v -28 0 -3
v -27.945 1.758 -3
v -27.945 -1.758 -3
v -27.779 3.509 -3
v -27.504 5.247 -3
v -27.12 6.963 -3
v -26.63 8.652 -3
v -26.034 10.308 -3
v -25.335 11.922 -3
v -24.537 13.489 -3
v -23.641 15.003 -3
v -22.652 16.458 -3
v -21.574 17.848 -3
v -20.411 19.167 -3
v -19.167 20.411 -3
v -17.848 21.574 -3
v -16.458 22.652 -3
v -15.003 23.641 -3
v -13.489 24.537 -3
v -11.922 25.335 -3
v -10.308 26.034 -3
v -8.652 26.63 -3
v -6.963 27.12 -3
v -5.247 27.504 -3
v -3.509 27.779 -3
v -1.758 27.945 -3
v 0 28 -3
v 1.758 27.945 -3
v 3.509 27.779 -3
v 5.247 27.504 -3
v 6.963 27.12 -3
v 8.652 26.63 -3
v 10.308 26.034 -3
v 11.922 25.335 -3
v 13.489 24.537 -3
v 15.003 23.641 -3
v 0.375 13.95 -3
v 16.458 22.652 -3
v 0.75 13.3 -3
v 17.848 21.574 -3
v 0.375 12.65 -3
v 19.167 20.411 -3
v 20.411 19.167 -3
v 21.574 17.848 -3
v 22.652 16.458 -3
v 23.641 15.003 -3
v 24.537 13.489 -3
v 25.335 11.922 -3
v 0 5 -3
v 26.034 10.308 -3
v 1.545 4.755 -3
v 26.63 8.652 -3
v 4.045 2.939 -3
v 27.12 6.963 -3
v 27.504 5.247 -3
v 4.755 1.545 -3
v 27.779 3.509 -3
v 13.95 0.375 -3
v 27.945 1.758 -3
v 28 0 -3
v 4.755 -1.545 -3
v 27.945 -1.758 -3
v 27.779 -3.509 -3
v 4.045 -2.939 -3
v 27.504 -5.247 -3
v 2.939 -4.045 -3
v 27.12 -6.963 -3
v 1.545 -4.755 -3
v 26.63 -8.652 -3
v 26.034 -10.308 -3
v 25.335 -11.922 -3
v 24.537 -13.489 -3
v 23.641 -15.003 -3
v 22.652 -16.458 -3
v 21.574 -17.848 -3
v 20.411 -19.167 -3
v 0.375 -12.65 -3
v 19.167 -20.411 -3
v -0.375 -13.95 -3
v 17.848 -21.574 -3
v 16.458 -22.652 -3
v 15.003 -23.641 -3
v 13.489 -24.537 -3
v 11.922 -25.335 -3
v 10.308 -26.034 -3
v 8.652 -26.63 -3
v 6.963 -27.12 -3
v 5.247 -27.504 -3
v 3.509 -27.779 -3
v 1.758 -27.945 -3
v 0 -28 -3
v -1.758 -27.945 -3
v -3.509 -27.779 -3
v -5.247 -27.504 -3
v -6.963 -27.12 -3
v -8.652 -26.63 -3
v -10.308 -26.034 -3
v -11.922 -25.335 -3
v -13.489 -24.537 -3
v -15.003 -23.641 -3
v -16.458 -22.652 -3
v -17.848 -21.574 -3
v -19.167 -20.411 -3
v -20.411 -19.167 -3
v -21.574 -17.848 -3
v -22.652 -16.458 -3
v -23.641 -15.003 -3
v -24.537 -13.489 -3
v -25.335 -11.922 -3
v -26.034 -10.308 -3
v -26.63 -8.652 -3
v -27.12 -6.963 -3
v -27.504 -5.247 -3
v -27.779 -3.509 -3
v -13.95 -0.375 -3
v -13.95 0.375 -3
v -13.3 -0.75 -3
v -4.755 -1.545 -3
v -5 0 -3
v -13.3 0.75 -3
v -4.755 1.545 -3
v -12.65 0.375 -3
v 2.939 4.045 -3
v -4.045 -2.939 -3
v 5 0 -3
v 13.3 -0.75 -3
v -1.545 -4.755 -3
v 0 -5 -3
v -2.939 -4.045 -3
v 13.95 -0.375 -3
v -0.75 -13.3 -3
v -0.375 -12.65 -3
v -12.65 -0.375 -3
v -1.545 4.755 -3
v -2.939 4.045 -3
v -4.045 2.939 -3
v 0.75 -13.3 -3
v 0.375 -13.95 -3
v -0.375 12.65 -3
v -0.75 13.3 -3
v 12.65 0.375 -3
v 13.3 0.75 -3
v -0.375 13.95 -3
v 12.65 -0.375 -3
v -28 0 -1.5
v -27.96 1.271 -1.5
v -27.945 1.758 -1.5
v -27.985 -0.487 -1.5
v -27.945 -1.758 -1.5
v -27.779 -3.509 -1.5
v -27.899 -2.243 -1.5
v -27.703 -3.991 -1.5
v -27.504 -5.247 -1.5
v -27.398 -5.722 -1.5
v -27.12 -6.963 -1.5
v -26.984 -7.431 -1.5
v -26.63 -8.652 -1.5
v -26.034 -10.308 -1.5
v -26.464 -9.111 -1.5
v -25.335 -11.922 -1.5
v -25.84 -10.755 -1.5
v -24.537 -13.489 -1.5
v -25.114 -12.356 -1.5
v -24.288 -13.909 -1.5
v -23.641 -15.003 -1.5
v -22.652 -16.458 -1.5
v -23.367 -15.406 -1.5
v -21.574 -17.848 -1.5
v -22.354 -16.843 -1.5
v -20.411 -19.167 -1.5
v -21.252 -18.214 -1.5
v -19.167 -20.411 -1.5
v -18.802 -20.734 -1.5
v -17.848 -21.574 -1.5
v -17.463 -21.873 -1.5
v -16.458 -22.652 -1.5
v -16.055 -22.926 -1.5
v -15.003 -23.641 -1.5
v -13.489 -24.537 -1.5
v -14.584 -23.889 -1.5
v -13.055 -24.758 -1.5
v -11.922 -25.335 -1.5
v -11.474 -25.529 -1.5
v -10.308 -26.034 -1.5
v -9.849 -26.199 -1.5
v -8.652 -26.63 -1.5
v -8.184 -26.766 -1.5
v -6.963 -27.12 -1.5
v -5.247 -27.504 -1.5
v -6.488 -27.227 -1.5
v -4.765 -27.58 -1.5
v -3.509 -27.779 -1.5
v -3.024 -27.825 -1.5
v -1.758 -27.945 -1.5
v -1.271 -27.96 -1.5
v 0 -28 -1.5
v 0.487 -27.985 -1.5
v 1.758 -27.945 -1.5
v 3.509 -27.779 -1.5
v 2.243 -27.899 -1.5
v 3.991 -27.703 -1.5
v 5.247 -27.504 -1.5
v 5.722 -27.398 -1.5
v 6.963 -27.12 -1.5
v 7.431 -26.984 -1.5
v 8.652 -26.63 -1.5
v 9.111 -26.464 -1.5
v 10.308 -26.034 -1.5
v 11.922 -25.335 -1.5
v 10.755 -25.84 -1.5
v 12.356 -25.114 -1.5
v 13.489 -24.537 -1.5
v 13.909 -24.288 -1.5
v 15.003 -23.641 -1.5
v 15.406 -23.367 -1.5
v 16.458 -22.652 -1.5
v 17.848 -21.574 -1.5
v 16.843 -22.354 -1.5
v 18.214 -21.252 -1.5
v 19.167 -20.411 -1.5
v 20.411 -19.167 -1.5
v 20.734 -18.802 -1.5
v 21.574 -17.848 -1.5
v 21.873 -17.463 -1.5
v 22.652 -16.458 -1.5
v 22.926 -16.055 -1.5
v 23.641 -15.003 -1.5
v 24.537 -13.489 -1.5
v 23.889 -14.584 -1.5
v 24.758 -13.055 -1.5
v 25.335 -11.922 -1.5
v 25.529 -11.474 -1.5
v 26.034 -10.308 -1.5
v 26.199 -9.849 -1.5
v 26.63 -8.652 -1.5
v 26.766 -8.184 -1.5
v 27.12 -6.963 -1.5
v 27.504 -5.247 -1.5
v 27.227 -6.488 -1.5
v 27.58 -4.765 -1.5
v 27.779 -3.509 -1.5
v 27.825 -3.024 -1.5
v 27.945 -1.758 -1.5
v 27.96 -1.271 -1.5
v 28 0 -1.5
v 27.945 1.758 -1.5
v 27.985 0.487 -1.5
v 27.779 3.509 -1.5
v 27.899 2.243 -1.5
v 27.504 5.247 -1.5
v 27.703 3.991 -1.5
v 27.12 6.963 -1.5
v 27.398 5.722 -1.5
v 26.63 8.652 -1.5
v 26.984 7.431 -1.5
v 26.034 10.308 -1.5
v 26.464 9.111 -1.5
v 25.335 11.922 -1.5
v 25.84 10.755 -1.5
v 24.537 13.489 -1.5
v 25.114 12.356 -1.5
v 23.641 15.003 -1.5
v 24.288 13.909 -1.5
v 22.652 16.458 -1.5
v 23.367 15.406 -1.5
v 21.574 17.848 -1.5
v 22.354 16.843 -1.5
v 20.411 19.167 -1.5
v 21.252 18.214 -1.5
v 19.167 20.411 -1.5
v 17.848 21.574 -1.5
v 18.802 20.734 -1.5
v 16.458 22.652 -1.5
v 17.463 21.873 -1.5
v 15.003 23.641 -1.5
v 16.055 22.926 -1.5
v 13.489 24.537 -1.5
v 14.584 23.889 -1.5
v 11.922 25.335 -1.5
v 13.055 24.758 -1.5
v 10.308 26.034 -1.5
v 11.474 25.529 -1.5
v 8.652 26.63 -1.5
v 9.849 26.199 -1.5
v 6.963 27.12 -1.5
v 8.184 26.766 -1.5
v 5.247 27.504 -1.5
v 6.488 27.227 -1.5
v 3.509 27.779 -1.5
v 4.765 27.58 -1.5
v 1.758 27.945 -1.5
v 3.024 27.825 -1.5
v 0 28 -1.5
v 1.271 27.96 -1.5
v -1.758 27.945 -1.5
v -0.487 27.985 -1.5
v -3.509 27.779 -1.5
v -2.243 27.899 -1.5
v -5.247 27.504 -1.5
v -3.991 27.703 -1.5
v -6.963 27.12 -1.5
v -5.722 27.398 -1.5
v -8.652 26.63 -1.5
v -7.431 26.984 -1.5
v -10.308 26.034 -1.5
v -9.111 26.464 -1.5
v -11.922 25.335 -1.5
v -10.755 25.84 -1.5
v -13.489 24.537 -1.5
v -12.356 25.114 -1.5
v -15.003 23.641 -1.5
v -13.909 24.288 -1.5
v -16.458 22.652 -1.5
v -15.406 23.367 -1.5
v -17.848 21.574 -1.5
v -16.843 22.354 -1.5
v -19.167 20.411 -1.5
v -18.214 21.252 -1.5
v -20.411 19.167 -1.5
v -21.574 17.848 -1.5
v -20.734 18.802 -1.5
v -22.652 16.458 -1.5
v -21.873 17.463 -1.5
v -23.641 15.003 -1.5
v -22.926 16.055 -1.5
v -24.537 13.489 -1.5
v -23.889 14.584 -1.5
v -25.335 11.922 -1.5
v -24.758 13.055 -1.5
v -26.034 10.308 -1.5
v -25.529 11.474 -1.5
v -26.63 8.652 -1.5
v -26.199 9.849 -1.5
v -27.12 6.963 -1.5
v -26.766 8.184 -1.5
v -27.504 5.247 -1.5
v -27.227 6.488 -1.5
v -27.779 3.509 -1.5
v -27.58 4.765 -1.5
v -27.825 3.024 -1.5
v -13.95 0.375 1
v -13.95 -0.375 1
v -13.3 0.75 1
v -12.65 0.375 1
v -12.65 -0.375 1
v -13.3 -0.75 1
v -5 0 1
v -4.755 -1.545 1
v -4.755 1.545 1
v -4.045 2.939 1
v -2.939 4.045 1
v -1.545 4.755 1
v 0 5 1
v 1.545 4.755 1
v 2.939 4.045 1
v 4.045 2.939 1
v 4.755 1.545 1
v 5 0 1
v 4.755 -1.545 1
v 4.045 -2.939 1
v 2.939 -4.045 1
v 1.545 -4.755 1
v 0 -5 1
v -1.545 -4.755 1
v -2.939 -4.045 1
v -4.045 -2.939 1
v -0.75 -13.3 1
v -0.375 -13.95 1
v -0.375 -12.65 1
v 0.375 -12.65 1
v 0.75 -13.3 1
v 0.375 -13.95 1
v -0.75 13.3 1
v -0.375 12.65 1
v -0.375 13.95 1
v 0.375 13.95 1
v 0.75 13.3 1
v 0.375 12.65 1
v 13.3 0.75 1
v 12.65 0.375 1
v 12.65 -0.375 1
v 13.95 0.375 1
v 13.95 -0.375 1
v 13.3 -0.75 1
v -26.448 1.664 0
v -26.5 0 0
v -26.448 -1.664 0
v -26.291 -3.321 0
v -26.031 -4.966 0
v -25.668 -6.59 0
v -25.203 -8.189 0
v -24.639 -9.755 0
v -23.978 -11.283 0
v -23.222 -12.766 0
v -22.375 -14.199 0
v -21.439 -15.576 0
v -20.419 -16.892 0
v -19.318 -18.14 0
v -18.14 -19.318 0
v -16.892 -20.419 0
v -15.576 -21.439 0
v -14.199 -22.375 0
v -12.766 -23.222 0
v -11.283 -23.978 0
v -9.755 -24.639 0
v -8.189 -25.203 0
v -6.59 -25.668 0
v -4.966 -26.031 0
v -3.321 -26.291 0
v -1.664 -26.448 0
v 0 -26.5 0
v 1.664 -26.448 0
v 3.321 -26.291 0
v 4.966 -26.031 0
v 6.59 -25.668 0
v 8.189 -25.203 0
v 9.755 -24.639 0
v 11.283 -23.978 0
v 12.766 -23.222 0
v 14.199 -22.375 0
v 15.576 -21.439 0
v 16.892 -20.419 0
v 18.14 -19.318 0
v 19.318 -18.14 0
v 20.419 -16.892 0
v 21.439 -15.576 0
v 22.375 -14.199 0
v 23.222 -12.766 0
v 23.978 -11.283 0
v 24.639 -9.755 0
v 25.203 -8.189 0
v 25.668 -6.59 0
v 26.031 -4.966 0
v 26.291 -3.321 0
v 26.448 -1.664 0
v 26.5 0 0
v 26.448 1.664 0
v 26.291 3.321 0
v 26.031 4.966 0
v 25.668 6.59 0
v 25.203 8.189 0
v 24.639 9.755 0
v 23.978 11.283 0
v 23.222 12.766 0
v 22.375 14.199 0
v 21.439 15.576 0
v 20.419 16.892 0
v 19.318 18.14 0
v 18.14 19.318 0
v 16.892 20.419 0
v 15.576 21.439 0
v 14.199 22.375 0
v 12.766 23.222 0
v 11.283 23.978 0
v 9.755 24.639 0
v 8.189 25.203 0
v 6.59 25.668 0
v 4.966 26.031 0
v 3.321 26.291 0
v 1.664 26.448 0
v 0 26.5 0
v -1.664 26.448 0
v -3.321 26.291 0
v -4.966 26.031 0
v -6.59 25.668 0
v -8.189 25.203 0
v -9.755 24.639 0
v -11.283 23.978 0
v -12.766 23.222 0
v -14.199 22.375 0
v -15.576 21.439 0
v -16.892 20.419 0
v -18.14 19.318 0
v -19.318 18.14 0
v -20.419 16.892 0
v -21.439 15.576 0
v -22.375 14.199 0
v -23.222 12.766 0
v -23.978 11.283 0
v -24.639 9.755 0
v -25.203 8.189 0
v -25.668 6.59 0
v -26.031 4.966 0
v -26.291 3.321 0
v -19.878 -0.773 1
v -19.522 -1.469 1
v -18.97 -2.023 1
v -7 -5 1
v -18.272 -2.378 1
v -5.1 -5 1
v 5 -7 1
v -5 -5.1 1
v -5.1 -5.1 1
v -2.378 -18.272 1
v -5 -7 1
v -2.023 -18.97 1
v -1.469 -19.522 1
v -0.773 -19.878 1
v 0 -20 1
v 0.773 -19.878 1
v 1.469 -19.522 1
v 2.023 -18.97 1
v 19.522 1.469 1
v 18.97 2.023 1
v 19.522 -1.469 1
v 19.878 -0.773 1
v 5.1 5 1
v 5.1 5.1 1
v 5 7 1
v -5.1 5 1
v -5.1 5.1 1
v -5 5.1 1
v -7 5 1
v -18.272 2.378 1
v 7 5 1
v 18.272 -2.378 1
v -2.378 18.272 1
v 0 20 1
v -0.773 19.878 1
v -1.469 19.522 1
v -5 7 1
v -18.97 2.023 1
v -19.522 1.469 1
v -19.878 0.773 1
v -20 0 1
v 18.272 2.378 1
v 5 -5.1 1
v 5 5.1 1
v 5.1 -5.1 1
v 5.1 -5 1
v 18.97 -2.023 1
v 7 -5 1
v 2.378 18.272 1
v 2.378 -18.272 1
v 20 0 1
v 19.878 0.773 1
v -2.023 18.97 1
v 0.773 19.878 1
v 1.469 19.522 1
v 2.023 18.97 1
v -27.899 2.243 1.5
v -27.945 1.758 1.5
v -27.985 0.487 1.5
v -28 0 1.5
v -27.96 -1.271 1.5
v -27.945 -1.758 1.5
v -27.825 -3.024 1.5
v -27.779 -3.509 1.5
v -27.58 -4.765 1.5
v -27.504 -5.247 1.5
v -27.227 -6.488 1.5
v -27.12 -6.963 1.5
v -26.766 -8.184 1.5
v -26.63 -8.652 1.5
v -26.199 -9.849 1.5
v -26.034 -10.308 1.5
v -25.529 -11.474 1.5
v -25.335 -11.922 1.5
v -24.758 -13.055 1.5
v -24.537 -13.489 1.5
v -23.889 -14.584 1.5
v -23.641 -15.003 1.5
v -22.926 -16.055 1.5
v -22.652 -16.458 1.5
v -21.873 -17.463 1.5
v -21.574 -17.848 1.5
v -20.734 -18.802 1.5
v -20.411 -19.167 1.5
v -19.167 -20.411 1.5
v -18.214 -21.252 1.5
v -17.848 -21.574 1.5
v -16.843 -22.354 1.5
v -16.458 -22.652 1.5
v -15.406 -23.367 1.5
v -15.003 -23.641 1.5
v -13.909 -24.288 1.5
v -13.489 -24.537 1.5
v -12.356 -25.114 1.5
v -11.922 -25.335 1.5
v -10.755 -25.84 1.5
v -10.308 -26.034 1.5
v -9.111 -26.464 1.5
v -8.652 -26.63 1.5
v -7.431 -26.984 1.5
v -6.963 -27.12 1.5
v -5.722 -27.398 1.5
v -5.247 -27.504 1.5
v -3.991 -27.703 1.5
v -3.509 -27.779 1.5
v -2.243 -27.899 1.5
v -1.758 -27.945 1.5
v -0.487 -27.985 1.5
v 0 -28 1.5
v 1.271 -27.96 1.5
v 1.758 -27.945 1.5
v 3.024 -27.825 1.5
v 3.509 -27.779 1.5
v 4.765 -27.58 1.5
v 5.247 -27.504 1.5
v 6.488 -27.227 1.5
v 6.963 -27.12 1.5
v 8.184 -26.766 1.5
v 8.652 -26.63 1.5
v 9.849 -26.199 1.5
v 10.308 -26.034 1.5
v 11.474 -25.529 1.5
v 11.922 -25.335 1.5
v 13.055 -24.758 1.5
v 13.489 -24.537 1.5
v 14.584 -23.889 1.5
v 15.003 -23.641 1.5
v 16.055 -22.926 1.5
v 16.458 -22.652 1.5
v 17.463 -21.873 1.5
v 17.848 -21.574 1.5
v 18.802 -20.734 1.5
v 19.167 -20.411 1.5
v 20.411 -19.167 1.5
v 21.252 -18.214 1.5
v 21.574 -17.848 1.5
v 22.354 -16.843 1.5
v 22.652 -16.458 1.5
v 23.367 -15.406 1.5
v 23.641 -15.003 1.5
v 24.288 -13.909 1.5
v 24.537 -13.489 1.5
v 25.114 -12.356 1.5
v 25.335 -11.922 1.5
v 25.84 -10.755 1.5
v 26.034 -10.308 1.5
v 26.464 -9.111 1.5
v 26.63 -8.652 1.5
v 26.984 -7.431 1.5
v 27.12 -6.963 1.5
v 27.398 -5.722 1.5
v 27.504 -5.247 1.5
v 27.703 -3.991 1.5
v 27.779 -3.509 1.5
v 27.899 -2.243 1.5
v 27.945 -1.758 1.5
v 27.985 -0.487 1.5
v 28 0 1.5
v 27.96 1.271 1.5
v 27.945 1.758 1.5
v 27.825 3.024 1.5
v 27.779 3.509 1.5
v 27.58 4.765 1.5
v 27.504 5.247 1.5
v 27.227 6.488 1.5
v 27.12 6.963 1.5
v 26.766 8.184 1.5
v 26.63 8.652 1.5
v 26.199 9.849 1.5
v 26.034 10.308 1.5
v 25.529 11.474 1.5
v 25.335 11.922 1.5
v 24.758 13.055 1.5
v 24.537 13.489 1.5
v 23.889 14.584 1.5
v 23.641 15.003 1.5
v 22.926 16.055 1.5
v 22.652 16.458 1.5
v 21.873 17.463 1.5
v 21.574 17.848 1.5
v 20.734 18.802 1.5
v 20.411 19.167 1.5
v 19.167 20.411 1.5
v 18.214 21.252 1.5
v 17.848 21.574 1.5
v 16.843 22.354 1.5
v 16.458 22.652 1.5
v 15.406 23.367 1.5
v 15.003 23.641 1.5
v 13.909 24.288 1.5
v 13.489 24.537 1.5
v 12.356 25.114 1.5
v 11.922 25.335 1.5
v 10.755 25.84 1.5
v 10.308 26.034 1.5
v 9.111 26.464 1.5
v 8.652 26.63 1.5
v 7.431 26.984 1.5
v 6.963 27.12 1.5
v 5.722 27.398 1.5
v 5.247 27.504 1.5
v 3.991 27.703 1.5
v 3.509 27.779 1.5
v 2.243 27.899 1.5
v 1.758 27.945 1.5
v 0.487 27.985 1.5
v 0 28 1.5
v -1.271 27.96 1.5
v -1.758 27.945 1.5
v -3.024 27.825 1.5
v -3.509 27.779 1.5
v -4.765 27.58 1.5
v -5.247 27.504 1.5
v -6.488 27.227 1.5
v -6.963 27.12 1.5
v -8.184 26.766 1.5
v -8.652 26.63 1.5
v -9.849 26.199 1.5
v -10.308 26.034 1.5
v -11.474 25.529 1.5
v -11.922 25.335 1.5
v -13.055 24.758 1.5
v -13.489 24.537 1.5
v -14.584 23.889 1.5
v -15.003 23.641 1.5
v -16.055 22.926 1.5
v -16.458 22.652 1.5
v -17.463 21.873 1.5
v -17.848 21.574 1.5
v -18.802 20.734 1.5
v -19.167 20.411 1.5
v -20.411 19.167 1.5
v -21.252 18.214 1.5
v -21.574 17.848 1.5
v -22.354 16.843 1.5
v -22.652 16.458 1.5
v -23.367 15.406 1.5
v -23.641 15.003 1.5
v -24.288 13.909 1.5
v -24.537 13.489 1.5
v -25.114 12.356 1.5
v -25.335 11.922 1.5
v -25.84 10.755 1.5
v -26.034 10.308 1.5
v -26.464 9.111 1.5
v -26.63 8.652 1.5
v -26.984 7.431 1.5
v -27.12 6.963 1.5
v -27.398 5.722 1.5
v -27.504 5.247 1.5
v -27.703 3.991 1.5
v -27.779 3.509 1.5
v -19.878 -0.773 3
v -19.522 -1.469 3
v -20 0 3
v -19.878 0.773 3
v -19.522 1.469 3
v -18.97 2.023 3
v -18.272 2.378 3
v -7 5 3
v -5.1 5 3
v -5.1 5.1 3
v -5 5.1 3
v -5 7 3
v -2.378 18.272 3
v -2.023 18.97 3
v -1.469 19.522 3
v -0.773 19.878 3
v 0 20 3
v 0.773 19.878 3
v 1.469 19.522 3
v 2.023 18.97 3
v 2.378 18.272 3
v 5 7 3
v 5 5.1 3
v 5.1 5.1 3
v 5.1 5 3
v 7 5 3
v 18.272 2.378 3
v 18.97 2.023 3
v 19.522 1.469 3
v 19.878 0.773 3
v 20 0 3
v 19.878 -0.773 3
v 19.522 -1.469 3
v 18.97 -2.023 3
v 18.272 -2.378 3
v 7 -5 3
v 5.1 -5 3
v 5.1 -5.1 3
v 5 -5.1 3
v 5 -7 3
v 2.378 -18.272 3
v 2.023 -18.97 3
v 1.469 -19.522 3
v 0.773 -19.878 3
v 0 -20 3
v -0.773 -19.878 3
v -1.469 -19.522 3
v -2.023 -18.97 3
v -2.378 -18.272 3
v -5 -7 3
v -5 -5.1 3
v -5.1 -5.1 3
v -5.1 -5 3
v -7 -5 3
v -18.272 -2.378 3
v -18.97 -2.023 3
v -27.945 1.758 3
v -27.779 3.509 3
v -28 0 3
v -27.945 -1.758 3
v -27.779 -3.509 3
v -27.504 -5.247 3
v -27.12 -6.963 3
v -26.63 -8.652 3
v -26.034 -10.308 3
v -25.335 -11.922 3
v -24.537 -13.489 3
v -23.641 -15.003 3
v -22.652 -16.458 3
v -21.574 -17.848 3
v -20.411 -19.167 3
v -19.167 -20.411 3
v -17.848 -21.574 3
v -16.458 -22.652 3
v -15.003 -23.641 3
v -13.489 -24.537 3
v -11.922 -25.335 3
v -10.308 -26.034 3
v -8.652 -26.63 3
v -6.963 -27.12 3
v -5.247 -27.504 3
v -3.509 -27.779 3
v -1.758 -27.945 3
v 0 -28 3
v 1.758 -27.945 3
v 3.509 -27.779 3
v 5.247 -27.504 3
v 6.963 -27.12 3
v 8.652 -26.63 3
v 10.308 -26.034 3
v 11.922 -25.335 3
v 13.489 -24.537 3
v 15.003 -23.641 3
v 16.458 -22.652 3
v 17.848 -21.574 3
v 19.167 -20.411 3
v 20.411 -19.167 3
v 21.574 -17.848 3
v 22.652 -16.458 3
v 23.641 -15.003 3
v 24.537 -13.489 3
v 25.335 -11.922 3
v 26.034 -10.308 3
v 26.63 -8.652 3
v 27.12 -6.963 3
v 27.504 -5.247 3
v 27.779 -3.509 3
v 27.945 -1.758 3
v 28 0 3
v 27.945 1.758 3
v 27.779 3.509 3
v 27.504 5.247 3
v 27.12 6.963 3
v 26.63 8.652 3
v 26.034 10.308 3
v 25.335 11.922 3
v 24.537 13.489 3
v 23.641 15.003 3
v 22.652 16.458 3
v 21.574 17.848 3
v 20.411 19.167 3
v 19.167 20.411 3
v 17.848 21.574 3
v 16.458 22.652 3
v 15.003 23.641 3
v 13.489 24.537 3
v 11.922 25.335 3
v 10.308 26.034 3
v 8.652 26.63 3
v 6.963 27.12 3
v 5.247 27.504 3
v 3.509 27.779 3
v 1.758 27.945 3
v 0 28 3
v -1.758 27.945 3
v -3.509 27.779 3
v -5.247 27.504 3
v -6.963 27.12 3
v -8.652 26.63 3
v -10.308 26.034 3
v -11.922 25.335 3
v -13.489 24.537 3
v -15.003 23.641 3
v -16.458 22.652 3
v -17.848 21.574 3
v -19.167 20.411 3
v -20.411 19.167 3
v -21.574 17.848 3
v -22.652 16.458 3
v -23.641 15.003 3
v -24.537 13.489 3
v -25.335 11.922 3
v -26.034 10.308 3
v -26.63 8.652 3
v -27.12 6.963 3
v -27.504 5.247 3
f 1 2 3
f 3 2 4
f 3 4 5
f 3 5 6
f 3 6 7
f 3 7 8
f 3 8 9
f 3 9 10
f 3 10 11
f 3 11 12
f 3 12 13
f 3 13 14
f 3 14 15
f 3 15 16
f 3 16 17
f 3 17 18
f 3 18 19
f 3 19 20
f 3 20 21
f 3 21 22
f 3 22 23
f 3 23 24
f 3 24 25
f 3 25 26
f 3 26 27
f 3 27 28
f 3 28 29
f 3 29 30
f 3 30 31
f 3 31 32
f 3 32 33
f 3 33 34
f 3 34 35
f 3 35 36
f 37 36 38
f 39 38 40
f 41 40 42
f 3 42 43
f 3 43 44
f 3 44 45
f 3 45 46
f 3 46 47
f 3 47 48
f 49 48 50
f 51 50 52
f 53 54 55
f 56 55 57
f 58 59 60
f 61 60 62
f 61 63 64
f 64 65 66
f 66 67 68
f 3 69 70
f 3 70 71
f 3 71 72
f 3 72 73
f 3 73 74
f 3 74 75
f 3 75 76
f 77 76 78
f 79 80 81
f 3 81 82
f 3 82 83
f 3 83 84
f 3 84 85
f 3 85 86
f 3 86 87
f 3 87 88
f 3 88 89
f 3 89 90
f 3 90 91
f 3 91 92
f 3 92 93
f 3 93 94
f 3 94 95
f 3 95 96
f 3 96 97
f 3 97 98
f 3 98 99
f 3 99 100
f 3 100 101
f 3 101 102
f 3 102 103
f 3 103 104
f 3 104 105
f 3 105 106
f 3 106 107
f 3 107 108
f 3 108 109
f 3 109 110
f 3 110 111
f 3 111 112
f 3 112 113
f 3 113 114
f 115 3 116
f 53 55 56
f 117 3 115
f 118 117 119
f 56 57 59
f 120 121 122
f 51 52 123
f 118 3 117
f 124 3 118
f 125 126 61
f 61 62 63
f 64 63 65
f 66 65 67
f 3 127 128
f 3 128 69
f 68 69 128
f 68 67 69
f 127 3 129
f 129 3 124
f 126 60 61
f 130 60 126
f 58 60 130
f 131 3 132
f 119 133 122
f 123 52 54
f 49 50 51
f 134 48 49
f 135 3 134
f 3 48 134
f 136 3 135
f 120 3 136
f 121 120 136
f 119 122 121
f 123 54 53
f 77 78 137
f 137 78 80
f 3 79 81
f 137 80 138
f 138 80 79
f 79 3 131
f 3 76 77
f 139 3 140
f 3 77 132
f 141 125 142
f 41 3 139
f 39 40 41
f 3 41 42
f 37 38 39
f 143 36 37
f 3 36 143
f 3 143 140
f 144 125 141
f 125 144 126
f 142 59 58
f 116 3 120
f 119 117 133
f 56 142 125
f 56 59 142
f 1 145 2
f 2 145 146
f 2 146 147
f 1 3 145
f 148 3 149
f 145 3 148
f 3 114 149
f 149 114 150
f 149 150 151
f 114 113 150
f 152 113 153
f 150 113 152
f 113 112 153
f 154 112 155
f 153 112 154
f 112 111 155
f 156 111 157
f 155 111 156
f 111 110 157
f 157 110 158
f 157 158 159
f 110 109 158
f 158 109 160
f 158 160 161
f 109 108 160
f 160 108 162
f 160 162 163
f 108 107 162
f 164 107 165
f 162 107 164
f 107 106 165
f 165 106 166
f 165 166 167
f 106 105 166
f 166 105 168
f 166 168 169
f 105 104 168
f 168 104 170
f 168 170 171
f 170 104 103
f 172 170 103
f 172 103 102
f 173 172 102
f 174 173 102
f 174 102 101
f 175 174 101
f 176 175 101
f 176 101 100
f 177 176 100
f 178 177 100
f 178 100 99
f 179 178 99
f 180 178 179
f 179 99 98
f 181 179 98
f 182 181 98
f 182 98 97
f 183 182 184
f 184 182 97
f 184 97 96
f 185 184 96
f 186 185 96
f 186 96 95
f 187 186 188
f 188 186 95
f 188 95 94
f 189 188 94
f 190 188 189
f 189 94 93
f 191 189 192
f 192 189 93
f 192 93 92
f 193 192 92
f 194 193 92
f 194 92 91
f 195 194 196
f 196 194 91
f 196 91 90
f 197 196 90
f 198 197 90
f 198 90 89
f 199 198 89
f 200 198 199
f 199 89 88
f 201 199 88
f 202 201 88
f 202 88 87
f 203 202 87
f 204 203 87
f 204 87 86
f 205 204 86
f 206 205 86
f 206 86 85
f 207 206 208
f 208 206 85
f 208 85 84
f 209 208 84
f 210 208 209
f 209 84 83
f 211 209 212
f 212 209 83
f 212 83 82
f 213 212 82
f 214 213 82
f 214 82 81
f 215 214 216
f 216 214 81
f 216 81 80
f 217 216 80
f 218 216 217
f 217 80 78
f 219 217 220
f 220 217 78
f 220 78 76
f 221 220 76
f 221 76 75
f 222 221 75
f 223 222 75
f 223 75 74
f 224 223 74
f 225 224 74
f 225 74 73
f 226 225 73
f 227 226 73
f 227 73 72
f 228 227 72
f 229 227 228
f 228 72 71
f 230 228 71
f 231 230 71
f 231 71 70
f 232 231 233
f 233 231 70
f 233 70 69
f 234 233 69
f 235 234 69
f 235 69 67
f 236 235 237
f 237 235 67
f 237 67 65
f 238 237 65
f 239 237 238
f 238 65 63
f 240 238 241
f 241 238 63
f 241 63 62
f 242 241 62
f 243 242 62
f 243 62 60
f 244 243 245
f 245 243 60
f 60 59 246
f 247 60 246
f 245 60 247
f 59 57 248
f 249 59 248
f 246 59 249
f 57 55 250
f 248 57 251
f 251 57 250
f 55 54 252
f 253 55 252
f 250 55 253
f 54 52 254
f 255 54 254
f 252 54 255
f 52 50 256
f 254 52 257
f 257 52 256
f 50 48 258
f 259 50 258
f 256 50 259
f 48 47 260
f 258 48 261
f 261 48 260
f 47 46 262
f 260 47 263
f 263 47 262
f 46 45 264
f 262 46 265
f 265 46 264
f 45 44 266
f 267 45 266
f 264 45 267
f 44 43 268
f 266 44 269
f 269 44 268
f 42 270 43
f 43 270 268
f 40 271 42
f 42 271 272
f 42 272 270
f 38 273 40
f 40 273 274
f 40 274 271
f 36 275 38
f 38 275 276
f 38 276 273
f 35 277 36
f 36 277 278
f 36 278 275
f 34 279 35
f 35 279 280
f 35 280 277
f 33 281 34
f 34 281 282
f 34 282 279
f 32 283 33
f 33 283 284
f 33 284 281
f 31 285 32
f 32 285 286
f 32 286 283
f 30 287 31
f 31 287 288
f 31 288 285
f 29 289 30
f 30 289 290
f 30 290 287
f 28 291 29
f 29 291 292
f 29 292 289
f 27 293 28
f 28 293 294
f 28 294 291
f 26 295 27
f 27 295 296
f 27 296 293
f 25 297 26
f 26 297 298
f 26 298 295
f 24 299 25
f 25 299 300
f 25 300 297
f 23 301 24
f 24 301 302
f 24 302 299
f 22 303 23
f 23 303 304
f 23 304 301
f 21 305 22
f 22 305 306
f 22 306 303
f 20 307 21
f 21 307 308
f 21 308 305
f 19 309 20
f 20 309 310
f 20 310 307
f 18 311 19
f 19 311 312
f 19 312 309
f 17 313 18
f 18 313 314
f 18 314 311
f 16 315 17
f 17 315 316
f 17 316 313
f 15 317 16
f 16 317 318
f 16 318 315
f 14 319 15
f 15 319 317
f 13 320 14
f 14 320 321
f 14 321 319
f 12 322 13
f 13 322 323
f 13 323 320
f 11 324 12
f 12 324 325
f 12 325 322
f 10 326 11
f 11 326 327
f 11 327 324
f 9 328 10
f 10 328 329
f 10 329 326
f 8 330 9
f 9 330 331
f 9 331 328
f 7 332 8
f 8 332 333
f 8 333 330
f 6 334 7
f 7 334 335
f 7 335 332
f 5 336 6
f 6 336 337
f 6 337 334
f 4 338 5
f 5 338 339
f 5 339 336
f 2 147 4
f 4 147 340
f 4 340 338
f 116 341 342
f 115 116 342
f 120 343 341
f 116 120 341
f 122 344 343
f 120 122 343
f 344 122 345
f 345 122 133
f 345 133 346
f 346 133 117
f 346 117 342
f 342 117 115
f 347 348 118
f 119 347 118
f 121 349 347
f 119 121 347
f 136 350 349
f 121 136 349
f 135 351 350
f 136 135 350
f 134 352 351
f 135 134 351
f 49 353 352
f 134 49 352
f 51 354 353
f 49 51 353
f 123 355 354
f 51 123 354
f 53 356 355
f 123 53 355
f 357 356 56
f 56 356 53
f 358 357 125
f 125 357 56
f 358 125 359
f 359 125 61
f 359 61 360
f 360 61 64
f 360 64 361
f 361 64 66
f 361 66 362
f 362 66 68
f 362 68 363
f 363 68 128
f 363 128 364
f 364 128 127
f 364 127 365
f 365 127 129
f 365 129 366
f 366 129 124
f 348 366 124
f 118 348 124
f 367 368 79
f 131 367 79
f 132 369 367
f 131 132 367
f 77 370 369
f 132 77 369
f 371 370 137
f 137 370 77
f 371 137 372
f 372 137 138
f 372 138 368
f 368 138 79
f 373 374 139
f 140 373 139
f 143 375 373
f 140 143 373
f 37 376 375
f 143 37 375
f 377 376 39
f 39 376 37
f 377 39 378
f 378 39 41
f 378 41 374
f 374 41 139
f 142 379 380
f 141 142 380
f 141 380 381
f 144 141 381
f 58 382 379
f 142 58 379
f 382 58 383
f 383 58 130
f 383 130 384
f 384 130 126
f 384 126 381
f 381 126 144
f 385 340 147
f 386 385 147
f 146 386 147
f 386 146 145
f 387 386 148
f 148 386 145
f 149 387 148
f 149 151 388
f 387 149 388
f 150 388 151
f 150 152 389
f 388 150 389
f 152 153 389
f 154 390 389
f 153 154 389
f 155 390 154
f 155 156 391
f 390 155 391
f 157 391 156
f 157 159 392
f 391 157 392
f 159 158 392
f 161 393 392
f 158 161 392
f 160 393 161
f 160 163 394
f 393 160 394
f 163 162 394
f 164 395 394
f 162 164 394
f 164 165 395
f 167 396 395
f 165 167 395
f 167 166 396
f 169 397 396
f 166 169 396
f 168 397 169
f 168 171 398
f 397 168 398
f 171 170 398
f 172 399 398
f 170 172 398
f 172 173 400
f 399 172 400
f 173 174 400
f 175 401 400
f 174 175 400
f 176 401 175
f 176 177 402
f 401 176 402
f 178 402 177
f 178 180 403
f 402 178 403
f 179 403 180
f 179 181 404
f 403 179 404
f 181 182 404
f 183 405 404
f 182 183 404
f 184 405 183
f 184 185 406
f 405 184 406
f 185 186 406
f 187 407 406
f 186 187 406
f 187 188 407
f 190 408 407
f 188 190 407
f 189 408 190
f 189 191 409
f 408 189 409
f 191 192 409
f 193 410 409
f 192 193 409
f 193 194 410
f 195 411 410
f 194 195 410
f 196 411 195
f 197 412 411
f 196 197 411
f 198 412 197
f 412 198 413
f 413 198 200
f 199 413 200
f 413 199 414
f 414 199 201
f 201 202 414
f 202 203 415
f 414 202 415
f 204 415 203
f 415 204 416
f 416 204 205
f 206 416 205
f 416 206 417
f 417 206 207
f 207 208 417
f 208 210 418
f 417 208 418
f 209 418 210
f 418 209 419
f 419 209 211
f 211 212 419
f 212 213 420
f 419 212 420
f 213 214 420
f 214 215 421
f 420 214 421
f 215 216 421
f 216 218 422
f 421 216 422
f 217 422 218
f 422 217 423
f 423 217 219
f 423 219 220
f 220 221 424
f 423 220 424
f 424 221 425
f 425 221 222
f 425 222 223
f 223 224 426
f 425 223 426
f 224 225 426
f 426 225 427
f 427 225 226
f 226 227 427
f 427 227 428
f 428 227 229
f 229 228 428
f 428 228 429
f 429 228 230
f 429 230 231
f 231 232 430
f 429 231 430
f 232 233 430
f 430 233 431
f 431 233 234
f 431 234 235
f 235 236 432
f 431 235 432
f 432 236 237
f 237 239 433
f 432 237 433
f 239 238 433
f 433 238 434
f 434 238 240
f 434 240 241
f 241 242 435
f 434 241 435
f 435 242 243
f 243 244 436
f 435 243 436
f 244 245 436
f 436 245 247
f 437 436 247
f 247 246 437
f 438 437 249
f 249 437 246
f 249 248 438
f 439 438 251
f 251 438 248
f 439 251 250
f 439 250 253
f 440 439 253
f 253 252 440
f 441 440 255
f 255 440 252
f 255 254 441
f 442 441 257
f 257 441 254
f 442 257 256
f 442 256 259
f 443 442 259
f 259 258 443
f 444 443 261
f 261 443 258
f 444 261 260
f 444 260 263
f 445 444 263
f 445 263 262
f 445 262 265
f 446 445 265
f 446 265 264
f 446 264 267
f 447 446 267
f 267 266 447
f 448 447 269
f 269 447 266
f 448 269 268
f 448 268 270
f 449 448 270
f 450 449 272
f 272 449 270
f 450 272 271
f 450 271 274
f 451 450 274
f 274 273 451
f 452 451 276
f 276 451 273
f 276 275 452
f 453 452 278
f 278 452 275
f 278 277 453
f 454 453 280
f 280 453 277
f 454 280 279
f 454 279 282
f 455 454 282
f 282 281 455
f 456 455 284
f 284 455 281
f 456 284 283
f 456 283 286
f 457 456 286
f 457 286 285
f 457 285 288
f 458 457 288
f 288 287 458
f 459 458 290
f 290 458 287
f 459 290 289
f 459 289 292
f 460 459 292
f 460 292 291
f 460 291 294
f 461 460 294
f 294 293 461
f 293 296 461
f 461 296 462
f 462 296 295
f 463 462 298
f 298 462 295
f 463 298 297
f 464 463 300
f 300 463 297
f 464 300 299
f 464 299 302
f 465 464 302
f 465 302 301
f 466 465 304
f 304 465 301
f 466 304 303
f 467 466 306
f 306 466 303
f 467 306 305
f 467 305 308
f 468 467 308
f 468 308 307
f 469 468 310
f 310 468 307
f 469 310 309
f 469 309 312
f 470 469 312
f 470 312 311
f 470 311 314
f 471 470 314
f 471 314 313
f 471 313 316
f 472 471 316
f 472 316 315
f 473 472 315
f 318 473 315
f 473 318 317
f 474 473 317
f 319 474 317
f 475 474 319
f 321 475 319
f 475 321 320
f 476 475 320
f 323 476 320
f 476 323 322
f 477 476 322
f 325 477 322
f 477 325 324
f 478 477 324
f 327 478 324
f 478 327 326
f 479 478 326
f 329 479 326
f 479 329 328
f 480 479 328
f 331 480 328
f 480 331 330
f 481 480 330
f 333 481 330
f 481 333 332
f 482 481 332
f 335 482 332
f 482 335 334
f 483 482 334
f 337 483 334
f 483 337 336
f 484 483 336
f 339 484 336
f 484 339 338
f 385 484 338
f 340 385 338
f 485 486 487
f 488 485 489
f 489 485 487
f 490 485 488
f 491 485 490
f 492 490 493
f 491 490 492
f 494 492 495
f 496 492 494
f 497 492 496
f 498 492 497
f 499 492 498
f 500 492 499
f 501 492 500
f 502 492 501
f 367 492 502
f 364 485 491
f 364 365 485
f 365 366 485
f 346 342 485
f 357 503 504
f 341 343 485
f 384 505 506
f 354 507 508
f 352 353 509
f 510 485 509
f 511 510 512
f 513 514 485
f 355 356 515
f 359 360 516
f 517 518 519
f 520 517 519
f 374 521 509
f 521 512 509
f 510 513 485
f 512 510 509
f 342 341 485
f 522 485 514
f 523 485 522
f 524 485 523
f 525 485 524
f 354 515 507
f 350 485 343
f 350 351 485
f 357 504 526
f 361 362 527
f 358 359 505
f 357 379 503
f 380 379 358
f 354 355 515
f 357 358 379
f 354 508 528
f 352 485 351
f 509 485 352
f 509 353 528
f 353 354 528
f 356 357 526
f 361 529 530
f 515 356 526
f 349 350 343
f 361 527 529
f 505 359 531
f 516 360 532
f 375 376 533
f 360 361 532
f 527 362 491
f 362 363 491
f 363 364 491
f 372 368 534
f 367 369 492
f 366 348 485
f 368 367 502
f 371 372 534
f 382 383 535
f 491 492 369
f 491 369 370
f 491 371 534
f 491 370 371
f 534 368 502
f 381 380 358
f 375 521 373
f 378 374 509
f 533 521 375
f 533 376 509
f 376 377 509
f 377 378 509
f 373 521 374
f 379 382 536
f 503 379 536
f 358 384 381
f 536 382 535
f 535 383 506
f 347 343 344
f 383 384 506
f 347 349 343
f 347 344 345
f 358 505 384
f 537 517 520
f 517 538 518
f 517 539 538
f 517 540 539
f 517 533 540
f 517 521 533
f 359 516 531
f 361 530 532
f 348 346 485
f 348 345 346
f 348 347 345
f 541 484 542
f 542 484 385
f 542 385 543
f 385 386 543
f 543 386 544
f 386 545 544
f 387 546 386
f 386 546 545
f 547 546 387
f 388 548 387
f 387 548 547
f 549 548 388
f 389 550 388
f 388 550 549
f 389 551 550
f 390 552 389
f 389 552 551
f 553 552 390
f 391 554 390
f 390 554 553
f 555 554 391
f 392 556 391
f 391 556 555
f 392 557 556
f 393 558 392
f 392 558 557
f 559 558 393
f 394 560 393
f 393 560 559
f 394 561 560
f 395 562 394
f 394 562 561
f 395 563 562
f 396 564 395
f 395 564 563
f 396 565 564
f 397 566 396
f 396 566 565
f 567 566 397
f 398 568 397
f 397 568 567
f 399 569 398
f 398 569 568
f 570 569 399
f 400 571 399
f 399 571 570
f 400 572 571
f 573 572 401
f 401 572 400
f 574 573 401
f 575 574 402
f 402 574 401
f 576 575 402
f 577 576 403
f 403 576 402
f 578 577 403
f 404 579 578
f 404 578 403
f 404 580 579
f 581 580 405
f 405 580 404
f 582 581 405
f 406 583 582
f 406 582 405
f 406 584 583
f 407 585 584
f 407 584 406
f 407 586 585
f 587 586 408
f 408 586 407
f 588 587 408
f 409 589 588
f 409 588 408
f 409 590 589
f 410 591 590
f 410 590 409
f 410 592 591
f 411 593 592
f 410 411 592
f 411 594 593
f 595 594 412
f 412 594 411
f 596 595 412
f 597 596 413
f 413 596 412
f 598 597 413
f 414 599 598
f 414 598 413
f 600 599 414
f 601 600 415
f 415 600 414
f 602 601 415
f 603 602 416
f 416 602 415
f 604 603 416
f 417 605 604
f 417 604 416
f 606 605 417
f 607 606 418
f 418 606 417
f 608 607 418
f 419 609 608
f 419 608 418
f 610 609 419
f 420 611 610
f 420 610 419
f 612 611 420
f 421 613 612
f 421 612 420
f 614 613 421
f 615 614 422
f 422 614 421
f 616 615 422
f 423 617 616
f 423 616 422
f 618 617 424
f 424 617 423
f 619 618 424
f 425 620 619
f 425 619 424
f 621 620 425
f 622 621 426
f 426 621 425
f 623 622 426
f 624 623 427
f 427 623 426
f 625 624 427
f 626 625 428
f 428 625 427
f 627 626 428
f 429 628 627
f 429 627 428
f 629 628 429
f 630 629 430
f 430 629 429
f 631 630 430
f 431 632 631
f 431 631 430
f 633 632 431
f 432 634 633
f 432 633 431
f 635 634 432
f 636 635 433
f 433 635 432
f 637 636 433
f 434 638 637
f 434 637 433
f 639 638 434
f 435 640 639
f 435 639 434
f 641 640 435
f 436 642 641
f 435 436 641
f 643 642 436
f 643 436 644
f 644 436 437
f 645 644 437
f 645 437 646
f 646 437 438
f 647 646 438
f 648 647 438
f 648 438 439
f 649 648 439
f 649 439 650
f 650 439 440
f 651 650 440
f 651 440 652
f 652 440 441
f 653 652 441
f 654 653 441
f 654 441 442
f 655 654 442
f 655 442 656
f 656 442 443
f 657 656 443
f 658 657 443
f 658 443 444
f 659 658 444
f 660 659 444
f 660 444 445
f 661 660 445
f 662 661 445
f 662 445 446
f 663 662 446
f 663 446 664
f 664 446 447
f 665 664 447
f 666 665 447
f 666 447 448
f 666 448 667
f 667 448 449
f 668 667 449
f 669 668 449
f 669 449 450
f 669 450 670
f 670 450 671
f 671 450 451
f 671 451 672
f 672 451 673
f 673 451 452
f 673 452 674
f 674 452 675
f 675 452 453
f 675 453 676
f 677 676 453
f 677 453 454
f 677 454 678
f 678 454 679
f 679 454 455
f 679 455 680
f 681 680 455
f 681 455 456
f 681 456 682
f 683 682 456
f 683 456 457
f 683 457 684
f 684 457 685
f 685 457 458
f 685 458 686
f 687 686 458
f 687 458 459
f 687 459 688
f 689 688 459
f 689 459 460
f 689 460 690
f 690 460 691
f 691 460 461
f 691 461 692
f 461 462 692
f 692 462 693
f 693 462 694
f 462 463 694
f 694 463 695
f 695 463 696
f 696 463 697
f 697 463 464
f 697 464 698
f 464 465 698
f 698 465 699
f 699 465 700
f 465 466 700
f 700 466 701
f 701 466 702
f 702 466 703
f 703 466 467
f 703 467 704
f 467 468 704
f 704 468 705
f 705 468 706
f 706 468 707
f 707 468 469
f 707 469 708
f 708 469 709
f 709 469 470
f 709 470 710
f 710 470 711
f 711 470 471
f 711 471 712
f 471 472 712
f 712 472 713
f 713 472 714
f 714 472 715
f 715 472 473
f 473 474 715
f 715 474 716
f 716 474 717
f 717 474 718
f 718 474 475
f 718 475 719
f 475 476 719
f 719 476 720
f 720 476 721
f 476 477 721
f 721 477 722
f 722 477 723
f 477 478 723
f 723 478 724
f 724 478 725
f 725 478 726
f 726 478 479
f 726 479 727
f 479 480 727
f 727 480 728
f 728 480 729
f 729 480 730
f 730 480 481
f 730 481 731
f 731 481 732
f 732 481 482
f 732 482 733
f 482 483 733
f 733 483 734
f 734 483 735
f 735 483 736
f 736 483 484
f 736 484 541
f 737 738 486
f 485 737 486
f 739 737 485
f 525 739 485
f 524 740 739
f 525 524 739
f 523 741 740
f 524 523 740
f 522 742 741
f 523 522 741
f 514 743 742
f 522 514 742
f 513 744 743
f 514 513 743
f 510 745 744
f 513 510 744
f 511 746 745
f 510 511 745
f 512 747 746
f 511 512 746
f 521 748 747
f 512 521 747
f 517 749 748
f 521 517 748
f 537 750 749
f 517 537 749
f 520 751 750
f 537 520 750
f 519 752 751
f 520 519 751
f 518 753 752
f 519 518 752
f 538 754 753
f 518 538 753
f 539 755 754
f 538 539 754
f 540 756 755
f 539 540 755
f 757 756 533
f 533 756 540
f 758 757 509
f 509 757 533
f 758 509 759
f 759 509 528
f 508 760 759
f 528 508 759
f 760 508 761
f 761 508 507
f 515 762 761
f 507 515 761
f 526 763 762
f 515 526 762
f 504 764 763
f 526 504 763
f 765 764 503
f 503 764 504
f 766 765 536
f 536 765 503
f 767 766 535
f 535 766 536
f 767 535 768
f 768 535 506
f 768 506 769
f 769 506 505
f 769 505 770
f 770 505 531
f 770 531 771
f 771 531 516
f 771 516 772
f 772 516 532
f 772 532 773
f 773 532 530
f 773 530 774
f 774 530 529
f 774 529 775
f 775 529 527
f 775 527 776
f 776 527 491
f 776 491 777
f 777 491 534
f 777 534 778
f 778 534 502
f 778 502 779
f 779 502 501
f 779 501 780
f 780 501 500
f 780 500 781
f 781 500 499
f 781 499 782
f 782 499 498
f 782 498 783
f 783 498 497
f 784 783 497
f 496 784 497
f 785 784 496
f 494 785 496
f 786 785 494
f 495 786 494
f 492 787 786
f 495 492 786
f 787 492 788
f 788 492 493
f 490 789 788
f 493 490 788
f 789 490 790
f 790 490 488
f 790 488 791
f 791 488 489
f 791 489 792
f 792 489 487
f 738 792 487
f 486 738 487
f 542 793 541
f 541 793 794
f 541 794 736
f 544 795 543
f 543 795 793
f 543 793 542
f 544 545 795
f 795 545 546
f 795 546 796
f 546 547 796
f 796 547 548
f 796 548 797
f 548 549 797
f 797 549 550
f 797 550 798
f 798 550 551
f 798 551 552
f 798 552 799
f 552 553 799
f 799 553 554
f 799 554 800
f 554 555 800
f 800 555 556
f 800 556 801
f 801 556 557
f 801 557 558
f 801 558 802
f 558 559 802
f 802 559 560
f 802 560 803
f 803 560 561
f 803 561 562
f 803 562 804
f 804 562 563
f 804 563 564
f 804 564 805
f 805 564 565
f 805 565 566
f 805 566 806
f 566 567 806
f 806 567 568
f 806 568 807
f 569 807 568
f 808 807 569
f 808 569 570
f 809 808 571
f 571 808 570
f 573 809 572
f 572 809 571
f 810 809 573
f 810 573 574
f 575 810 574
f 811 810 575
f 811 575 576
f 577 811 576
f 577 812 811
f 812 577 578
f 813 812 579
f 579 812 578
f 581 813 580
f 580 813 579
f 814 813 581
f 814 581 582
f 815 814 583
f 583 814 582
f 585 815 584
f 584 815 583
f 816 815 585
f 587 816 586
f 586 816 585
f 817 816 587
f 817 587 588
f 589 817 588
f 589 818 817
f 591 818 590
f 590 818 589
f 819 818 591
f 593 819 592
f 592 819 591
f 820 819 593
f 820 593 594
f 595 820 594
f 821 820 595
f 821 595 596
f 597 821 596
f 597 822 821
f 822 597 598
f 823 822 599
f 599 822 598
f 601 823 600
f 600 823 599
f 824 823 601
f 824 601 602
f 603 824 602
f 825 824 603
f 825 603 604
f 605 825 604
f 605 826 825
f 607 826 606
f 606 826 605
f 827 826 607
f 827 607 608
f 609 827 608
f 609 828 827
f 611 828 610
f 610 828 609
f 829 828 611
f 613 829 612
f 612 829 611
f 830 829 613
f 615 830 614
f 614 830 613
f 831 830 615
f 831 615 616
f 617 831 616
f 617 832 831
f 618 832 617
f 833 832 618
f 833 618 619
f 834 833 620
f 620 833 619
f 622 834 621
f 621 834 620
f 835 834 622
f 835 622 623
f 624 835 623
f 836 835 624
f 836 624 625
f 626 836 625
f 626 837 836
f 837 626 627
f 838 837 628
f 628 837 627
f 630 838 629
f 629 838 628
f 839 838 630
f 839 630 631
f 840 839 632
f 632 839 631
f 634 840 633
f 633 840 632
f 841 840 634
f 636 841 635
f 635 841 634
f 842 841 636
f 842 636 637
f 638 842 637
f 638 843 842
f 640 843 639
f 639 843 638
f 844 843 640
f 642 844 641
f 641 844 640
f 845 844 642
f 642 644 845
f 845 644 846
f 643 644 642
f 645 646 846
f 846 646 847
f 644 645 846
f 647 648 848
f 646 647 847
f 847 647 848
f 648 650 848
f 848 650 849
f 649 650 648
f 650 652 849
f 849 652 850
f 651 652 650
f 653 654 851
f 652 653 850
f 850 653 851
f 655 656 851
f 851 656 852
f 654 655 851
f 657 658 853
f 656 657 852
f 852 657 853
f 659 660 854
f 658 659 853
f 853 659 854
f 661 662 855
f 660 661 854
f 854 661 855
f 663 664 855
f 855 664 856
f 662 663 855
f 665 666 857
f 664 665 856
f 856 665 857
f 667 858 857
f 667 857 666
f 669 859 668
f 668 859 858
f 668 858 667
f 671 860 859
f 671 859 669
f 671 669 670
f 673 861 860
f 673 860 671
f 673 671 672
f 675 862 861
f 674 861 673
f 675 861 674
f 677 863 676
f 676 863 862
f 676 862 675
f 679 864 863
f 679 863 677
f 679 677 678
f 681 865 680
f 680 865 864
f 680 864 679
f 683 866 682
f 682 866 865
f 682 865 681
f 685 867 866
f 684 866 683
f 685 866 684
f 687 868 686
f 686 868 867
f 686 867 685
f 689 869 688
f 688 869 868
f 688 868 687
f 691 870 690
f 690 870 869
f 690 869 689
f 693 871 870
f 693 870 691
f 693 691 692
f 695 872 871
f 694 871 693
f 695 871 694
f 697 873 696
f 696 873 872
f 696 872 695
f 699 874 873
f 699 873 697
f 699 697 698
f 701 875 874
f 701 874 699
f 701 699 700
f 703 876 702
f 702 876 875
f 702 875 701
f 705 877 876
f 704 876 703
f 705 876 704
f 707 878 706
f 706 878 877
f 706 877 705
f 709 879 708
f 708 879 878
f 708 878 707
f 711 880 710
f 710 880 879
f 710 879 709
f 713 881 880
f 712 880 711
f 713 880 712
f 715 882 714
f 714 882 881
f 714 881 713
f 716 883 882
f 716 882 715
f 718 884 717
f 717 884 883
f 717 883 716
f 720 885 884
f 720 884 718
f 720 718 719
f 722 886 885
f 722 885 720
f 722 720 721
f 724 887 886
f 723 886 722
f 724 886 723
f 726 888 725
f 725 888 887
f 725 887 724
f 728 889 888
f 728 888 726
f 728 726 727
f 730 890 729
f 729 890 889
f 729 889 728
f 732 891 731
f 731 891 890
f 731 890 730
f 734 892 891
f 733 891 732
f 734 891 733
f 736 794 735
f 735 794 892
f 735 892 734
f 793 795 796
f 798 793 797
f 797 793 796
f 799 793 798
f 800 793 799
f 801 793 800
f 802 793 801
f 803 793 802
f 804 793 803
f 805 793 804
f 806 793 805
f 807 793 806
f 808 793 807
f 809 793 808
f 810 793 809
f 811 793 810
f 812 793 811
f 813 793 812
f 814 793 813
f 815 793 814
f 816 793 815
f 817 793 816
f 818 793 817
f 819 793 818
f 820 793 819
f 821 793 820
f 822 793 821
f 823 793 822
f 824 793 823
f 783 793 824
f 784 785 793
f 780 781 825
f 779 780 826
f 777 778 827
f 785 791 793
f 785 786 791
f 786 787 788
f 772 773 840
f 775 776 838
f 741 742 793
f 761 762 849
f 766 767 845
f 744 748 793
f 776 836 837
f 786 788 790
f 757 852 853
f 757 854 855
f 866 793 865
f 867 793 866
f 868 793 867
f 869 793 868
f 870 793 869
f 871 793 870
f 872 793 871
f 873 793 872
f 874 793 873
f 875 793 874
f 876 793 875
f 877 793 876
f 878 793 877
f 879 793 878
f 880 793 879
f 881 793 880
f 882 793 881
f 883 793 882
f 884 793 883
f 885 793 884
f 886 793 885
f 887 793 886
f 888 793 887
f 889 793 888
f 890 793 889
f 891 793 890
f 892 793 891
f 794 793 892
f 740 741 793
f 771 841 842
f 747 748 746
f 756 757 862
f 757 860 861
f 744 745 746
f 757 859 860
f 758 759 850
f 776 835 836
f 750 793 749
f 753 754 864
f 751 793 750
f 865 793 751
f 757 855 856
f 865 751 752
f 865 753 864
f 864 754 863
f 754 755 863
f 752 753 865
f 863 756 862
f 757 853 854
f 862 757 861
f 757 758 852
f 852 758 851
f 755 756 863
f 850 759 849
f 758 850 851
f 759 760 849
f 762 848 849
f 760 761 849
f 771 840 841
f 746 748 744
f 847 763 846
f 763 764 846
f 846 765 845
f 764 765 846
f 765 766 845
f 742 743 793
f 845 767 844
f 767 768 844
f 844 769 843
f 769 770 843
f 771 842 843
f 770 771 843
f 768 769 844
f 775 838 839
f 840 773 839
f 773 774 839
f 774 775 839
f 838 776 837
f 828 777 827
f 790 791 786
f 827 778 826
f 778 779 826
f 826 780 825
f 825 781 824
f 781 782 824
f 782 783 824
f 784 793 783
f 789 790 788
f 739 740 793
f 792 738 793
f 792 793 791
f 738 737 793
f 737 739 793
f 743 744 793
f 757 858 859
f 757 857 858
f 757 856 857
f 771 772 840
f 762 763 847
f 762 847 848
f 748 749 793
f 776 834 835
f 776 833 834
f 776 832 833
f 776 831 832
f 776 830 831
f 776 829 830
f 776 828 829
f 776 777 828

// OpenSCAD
//-------------------------------------------------------------
//-- Servo wheel
//-- (c) Juan Gonzalez (obijuan) juan@iearobotics.com
//-- March-2012
//-------------------------------------------------------------
//-- Wheel for mobile robots, drived by Futaba 3003 servos
//-------------------------------------------------------------

//-- Wheel parameters
wheel_or_idiam = 50;                   //-- O-ring inner diameter
wheel_or_diam = 3;                     //-- O-ring section diameter
wheel_height = 2*wheel_or_diam+0;     //-- Wheel height: change the 0 for 
                                      //-- other value (0 equals minimun height)
//-- Parameters common to all horns
horn_drill_diam = 1.5;
horn_height = 6;        //-- Total height: shaft + plate
horn_plate_height = 2;  //-- plate height

//-- Futaba 3003 servo rounded horn parameters
rh_diam1 = 8.5;  //-- Rounded horn small diameter
rh_diam2 = 21.5; //-- Rounded horn big diameter
rounded_horn_drill_distance = 7.3;

//-- Futaba 3003 horn drills


//-- Futaba 3003 4-arm horn parameters
a4h_end_diam = 5;
a4h_center_diam = 10;
a4h_arm_length = 15;
a4h_drill_distance = 13.3;


//-- Futaba 3003 6-arm horn parameters
a6h_end_diam = 5;
a6h_center_diam = 10;
a6h_arm_length=10;
a6h_arm_base_diam=7.5;
a6h_drill_distance = 10.9;


//-------------------------------------------------------
//--- Parameters:
//-- or_idiam: O-ring inner diameter
//-- or_diam: O-ring section diameter
//-- h: Height of the wheel
//--
//--  Module for generating a raw wheel, with no drills
//--  and no servo horn
//-------------------------------------------------------
module raw_wheel(or_idiam=50, or_diam=3, h=6)
{
   //-- Wheel parameters
   r = or_idiam/2 + or_diam;   //-- Radius

  //-- Temporal points
  l = or_diam*sqrt(2)/2;

  difference() {
    //-- Body of the wheel
    cylinder (r=r, h=h, $fn=100,center=true);

    //--  wheel's inner section
    rotate_extrude($fn=100)
      translate([r-or_diam/2,0,0])
      polygon( [ [0,0],[l,l],[l,-l] ] , [ [0,1,2] ]);
  }
}

//--------------------------------------------------------------
//-- Generic module for the horn's drills
//-- Parameters:
//--  d = drill's radial distance (from the horn's center)
//--  n = number of drills
//--  h = wheel height
//--------------------------------------------------------------
module horn_drills(d,n,h)
{
  union() {
    for ( i = [0 : n-1] ) {
        rotate([0,0,i*360/n])
        translate([0,d,0])
        cylinder(r=horn_drill_diam/2, h=h+10,center=true, $fn=6);  
      }
  }
}

//-----------------------------------------
//-- Futaba 3003 horn4 arm
//-- This module is just one arm
//-----------------------------------------
module horn4_arm(h=5)
{
  translate([0,a4h_arm_length-a4h_end_diam/2,0])
  //-- The arm consist of the perimeter of a cylinder and a cube
  hull() {
    cylinder(r=a4h_end_diam/2, h=h, center=true, $fn=20);
    translate([0,1-a4h_arm_length+a4h_end_diam/2,0])
      cube([a4h_center_diam,2,h],center=true);
  }
}

//-----------------------------------------
//-- Futaba 3003 horn6 arm
//-- This module is just one arm
//-----------------------------------------
module horn6_arm(h=5)
{
  translate([0,a6h_arm_length-a6h_end_diam/2,0])
  //-- The arm consist of the perimeter of a cylinder and a cube
  hull() {
    cylinder(r=a6h_end_diam/2, h=h, center=true, $fn=20);
    translate([0,-a6h_arm_length+a6h_end_diam/2,0])
    cube([a6h_arm_base_diam,0.1,h],center=true);
  }
}


//-------------------------------------------
//-- Futaba 3003 4-arm horn
//-------------------------------------------
module horn4(h=5)
{
  union() {
    //-- Center part (is a square)
    cube([a4h_center_diam+0.2,a4h_center_diam+0.2,h],center=true);

    //-- Place the 4 arms in every side of the cube
    for ( i = [0 : 3] ) {
      rotate( [0,0,i*90])
      translate([0, a4h_center_diam/2, 0])
      horn4_arm(h);
    }
  }

}

//-------------------------------------------
//-- Futaba 3003 6-arm horn
//-------------------------------------------
module horn6(h=5)
{
  union() {
    //-- The center part is a cylinder
    cylinder(r=15/2,h=h,center=true);

    //-- Place the 6 arms rotated 60 degrees
    for ( i = [0 : 5] ) {
      rotate( [0,0,i*60])
      translate([0, 15/2*cos(30), 0])
      horn6_arm(h);
    }
  }
}


//-------------------------------------------------------
//--  A Wheel for the futaba 3003 rounded horns
//--------------------------------------------------------
module Servo_wheel_rounded_horn()
{
  difference() {
      raw_wheel(or_idiam=wheel_or_idiam, or_diam=wheel_or_diam, h=wheel_height);

      //-- Inner drill
      cylinder(center=true, h=2*wheel_height + 10, r=rh_diam1/2+0.2,$fn=100);

      //-- Carved circle for the Futaba rounded horn
      translate([0,0,-wheel_height/2+horn_height-horn_plate_height]) 
       cylinder(r=rh_diam2/2+0.25, h=2*wheel_height+10,$fn=30);

      //-- small drills for the rounded horn
      horn_drills(d=rounded_horn_drill_distance, n=4, h=wheel_height);
  }

}

//-------------------------------------------------------
//--  A Wheel for the futaba 3003 4-arm horns
//--------------------------------------------------------
module Servo_wheel_4_arm_horn()
{
  difference() {
      raw_wheel(or_idiam=wheel_or_idiam, or_diam=wheel_or_diam, h=wheel_height);

      //-- Inner drill
      cylinder(center=true, h=2*wheel_height + 10, r=a4h_center_diam/2,$fn=20);

      //-- substract the 4-arm servo horn
      translate([0,0,horn_height-horn_plate_height])
        horn4(h=wheel_height);

      //-- Horn drills
      horn_drills(d=a4h_drill_distance, n=4, h=wheel_height);

  }
}

//-------------------------------------------------------
//--  A Wheel for the futaba 3003 6-arm horns
//--------------------------------------------------------
module Servo_wheel_6_arm_horn()
{
  difference() {
      raw_wheel(or_idiam=wheel_or_idiam, or_diam=wheel_or_diam, h=wheel_height);

       //-- Inner drill
      cylinder(center=true, h=2*wheel_height + 10, r=a6h_center_diam/2,$fn=20);

      //-- substract the 6-arm horn
      translate([0,0,horn_height-horn_plate_height])
      horn6(h=wheel_height);

      //-- Horn drills
      horn_drills(d=a6h_drill_distance, n=6, h=wheel_height);
  }
}


//-- Test!
//Servo_wheel_rounded_horn();
//translate([wheel_or_idiam+10,0,0]) Servo_wheel_4_arm_horn();
//translate([-wheel_or_idiam-10,0,0]) Servo_wheel_6_arm_horn();

Servo_wheel_4_arm_horn();
//translate([wheel_or_idiam+10,0,0]) Servo_wheel_4_arm_horn();
